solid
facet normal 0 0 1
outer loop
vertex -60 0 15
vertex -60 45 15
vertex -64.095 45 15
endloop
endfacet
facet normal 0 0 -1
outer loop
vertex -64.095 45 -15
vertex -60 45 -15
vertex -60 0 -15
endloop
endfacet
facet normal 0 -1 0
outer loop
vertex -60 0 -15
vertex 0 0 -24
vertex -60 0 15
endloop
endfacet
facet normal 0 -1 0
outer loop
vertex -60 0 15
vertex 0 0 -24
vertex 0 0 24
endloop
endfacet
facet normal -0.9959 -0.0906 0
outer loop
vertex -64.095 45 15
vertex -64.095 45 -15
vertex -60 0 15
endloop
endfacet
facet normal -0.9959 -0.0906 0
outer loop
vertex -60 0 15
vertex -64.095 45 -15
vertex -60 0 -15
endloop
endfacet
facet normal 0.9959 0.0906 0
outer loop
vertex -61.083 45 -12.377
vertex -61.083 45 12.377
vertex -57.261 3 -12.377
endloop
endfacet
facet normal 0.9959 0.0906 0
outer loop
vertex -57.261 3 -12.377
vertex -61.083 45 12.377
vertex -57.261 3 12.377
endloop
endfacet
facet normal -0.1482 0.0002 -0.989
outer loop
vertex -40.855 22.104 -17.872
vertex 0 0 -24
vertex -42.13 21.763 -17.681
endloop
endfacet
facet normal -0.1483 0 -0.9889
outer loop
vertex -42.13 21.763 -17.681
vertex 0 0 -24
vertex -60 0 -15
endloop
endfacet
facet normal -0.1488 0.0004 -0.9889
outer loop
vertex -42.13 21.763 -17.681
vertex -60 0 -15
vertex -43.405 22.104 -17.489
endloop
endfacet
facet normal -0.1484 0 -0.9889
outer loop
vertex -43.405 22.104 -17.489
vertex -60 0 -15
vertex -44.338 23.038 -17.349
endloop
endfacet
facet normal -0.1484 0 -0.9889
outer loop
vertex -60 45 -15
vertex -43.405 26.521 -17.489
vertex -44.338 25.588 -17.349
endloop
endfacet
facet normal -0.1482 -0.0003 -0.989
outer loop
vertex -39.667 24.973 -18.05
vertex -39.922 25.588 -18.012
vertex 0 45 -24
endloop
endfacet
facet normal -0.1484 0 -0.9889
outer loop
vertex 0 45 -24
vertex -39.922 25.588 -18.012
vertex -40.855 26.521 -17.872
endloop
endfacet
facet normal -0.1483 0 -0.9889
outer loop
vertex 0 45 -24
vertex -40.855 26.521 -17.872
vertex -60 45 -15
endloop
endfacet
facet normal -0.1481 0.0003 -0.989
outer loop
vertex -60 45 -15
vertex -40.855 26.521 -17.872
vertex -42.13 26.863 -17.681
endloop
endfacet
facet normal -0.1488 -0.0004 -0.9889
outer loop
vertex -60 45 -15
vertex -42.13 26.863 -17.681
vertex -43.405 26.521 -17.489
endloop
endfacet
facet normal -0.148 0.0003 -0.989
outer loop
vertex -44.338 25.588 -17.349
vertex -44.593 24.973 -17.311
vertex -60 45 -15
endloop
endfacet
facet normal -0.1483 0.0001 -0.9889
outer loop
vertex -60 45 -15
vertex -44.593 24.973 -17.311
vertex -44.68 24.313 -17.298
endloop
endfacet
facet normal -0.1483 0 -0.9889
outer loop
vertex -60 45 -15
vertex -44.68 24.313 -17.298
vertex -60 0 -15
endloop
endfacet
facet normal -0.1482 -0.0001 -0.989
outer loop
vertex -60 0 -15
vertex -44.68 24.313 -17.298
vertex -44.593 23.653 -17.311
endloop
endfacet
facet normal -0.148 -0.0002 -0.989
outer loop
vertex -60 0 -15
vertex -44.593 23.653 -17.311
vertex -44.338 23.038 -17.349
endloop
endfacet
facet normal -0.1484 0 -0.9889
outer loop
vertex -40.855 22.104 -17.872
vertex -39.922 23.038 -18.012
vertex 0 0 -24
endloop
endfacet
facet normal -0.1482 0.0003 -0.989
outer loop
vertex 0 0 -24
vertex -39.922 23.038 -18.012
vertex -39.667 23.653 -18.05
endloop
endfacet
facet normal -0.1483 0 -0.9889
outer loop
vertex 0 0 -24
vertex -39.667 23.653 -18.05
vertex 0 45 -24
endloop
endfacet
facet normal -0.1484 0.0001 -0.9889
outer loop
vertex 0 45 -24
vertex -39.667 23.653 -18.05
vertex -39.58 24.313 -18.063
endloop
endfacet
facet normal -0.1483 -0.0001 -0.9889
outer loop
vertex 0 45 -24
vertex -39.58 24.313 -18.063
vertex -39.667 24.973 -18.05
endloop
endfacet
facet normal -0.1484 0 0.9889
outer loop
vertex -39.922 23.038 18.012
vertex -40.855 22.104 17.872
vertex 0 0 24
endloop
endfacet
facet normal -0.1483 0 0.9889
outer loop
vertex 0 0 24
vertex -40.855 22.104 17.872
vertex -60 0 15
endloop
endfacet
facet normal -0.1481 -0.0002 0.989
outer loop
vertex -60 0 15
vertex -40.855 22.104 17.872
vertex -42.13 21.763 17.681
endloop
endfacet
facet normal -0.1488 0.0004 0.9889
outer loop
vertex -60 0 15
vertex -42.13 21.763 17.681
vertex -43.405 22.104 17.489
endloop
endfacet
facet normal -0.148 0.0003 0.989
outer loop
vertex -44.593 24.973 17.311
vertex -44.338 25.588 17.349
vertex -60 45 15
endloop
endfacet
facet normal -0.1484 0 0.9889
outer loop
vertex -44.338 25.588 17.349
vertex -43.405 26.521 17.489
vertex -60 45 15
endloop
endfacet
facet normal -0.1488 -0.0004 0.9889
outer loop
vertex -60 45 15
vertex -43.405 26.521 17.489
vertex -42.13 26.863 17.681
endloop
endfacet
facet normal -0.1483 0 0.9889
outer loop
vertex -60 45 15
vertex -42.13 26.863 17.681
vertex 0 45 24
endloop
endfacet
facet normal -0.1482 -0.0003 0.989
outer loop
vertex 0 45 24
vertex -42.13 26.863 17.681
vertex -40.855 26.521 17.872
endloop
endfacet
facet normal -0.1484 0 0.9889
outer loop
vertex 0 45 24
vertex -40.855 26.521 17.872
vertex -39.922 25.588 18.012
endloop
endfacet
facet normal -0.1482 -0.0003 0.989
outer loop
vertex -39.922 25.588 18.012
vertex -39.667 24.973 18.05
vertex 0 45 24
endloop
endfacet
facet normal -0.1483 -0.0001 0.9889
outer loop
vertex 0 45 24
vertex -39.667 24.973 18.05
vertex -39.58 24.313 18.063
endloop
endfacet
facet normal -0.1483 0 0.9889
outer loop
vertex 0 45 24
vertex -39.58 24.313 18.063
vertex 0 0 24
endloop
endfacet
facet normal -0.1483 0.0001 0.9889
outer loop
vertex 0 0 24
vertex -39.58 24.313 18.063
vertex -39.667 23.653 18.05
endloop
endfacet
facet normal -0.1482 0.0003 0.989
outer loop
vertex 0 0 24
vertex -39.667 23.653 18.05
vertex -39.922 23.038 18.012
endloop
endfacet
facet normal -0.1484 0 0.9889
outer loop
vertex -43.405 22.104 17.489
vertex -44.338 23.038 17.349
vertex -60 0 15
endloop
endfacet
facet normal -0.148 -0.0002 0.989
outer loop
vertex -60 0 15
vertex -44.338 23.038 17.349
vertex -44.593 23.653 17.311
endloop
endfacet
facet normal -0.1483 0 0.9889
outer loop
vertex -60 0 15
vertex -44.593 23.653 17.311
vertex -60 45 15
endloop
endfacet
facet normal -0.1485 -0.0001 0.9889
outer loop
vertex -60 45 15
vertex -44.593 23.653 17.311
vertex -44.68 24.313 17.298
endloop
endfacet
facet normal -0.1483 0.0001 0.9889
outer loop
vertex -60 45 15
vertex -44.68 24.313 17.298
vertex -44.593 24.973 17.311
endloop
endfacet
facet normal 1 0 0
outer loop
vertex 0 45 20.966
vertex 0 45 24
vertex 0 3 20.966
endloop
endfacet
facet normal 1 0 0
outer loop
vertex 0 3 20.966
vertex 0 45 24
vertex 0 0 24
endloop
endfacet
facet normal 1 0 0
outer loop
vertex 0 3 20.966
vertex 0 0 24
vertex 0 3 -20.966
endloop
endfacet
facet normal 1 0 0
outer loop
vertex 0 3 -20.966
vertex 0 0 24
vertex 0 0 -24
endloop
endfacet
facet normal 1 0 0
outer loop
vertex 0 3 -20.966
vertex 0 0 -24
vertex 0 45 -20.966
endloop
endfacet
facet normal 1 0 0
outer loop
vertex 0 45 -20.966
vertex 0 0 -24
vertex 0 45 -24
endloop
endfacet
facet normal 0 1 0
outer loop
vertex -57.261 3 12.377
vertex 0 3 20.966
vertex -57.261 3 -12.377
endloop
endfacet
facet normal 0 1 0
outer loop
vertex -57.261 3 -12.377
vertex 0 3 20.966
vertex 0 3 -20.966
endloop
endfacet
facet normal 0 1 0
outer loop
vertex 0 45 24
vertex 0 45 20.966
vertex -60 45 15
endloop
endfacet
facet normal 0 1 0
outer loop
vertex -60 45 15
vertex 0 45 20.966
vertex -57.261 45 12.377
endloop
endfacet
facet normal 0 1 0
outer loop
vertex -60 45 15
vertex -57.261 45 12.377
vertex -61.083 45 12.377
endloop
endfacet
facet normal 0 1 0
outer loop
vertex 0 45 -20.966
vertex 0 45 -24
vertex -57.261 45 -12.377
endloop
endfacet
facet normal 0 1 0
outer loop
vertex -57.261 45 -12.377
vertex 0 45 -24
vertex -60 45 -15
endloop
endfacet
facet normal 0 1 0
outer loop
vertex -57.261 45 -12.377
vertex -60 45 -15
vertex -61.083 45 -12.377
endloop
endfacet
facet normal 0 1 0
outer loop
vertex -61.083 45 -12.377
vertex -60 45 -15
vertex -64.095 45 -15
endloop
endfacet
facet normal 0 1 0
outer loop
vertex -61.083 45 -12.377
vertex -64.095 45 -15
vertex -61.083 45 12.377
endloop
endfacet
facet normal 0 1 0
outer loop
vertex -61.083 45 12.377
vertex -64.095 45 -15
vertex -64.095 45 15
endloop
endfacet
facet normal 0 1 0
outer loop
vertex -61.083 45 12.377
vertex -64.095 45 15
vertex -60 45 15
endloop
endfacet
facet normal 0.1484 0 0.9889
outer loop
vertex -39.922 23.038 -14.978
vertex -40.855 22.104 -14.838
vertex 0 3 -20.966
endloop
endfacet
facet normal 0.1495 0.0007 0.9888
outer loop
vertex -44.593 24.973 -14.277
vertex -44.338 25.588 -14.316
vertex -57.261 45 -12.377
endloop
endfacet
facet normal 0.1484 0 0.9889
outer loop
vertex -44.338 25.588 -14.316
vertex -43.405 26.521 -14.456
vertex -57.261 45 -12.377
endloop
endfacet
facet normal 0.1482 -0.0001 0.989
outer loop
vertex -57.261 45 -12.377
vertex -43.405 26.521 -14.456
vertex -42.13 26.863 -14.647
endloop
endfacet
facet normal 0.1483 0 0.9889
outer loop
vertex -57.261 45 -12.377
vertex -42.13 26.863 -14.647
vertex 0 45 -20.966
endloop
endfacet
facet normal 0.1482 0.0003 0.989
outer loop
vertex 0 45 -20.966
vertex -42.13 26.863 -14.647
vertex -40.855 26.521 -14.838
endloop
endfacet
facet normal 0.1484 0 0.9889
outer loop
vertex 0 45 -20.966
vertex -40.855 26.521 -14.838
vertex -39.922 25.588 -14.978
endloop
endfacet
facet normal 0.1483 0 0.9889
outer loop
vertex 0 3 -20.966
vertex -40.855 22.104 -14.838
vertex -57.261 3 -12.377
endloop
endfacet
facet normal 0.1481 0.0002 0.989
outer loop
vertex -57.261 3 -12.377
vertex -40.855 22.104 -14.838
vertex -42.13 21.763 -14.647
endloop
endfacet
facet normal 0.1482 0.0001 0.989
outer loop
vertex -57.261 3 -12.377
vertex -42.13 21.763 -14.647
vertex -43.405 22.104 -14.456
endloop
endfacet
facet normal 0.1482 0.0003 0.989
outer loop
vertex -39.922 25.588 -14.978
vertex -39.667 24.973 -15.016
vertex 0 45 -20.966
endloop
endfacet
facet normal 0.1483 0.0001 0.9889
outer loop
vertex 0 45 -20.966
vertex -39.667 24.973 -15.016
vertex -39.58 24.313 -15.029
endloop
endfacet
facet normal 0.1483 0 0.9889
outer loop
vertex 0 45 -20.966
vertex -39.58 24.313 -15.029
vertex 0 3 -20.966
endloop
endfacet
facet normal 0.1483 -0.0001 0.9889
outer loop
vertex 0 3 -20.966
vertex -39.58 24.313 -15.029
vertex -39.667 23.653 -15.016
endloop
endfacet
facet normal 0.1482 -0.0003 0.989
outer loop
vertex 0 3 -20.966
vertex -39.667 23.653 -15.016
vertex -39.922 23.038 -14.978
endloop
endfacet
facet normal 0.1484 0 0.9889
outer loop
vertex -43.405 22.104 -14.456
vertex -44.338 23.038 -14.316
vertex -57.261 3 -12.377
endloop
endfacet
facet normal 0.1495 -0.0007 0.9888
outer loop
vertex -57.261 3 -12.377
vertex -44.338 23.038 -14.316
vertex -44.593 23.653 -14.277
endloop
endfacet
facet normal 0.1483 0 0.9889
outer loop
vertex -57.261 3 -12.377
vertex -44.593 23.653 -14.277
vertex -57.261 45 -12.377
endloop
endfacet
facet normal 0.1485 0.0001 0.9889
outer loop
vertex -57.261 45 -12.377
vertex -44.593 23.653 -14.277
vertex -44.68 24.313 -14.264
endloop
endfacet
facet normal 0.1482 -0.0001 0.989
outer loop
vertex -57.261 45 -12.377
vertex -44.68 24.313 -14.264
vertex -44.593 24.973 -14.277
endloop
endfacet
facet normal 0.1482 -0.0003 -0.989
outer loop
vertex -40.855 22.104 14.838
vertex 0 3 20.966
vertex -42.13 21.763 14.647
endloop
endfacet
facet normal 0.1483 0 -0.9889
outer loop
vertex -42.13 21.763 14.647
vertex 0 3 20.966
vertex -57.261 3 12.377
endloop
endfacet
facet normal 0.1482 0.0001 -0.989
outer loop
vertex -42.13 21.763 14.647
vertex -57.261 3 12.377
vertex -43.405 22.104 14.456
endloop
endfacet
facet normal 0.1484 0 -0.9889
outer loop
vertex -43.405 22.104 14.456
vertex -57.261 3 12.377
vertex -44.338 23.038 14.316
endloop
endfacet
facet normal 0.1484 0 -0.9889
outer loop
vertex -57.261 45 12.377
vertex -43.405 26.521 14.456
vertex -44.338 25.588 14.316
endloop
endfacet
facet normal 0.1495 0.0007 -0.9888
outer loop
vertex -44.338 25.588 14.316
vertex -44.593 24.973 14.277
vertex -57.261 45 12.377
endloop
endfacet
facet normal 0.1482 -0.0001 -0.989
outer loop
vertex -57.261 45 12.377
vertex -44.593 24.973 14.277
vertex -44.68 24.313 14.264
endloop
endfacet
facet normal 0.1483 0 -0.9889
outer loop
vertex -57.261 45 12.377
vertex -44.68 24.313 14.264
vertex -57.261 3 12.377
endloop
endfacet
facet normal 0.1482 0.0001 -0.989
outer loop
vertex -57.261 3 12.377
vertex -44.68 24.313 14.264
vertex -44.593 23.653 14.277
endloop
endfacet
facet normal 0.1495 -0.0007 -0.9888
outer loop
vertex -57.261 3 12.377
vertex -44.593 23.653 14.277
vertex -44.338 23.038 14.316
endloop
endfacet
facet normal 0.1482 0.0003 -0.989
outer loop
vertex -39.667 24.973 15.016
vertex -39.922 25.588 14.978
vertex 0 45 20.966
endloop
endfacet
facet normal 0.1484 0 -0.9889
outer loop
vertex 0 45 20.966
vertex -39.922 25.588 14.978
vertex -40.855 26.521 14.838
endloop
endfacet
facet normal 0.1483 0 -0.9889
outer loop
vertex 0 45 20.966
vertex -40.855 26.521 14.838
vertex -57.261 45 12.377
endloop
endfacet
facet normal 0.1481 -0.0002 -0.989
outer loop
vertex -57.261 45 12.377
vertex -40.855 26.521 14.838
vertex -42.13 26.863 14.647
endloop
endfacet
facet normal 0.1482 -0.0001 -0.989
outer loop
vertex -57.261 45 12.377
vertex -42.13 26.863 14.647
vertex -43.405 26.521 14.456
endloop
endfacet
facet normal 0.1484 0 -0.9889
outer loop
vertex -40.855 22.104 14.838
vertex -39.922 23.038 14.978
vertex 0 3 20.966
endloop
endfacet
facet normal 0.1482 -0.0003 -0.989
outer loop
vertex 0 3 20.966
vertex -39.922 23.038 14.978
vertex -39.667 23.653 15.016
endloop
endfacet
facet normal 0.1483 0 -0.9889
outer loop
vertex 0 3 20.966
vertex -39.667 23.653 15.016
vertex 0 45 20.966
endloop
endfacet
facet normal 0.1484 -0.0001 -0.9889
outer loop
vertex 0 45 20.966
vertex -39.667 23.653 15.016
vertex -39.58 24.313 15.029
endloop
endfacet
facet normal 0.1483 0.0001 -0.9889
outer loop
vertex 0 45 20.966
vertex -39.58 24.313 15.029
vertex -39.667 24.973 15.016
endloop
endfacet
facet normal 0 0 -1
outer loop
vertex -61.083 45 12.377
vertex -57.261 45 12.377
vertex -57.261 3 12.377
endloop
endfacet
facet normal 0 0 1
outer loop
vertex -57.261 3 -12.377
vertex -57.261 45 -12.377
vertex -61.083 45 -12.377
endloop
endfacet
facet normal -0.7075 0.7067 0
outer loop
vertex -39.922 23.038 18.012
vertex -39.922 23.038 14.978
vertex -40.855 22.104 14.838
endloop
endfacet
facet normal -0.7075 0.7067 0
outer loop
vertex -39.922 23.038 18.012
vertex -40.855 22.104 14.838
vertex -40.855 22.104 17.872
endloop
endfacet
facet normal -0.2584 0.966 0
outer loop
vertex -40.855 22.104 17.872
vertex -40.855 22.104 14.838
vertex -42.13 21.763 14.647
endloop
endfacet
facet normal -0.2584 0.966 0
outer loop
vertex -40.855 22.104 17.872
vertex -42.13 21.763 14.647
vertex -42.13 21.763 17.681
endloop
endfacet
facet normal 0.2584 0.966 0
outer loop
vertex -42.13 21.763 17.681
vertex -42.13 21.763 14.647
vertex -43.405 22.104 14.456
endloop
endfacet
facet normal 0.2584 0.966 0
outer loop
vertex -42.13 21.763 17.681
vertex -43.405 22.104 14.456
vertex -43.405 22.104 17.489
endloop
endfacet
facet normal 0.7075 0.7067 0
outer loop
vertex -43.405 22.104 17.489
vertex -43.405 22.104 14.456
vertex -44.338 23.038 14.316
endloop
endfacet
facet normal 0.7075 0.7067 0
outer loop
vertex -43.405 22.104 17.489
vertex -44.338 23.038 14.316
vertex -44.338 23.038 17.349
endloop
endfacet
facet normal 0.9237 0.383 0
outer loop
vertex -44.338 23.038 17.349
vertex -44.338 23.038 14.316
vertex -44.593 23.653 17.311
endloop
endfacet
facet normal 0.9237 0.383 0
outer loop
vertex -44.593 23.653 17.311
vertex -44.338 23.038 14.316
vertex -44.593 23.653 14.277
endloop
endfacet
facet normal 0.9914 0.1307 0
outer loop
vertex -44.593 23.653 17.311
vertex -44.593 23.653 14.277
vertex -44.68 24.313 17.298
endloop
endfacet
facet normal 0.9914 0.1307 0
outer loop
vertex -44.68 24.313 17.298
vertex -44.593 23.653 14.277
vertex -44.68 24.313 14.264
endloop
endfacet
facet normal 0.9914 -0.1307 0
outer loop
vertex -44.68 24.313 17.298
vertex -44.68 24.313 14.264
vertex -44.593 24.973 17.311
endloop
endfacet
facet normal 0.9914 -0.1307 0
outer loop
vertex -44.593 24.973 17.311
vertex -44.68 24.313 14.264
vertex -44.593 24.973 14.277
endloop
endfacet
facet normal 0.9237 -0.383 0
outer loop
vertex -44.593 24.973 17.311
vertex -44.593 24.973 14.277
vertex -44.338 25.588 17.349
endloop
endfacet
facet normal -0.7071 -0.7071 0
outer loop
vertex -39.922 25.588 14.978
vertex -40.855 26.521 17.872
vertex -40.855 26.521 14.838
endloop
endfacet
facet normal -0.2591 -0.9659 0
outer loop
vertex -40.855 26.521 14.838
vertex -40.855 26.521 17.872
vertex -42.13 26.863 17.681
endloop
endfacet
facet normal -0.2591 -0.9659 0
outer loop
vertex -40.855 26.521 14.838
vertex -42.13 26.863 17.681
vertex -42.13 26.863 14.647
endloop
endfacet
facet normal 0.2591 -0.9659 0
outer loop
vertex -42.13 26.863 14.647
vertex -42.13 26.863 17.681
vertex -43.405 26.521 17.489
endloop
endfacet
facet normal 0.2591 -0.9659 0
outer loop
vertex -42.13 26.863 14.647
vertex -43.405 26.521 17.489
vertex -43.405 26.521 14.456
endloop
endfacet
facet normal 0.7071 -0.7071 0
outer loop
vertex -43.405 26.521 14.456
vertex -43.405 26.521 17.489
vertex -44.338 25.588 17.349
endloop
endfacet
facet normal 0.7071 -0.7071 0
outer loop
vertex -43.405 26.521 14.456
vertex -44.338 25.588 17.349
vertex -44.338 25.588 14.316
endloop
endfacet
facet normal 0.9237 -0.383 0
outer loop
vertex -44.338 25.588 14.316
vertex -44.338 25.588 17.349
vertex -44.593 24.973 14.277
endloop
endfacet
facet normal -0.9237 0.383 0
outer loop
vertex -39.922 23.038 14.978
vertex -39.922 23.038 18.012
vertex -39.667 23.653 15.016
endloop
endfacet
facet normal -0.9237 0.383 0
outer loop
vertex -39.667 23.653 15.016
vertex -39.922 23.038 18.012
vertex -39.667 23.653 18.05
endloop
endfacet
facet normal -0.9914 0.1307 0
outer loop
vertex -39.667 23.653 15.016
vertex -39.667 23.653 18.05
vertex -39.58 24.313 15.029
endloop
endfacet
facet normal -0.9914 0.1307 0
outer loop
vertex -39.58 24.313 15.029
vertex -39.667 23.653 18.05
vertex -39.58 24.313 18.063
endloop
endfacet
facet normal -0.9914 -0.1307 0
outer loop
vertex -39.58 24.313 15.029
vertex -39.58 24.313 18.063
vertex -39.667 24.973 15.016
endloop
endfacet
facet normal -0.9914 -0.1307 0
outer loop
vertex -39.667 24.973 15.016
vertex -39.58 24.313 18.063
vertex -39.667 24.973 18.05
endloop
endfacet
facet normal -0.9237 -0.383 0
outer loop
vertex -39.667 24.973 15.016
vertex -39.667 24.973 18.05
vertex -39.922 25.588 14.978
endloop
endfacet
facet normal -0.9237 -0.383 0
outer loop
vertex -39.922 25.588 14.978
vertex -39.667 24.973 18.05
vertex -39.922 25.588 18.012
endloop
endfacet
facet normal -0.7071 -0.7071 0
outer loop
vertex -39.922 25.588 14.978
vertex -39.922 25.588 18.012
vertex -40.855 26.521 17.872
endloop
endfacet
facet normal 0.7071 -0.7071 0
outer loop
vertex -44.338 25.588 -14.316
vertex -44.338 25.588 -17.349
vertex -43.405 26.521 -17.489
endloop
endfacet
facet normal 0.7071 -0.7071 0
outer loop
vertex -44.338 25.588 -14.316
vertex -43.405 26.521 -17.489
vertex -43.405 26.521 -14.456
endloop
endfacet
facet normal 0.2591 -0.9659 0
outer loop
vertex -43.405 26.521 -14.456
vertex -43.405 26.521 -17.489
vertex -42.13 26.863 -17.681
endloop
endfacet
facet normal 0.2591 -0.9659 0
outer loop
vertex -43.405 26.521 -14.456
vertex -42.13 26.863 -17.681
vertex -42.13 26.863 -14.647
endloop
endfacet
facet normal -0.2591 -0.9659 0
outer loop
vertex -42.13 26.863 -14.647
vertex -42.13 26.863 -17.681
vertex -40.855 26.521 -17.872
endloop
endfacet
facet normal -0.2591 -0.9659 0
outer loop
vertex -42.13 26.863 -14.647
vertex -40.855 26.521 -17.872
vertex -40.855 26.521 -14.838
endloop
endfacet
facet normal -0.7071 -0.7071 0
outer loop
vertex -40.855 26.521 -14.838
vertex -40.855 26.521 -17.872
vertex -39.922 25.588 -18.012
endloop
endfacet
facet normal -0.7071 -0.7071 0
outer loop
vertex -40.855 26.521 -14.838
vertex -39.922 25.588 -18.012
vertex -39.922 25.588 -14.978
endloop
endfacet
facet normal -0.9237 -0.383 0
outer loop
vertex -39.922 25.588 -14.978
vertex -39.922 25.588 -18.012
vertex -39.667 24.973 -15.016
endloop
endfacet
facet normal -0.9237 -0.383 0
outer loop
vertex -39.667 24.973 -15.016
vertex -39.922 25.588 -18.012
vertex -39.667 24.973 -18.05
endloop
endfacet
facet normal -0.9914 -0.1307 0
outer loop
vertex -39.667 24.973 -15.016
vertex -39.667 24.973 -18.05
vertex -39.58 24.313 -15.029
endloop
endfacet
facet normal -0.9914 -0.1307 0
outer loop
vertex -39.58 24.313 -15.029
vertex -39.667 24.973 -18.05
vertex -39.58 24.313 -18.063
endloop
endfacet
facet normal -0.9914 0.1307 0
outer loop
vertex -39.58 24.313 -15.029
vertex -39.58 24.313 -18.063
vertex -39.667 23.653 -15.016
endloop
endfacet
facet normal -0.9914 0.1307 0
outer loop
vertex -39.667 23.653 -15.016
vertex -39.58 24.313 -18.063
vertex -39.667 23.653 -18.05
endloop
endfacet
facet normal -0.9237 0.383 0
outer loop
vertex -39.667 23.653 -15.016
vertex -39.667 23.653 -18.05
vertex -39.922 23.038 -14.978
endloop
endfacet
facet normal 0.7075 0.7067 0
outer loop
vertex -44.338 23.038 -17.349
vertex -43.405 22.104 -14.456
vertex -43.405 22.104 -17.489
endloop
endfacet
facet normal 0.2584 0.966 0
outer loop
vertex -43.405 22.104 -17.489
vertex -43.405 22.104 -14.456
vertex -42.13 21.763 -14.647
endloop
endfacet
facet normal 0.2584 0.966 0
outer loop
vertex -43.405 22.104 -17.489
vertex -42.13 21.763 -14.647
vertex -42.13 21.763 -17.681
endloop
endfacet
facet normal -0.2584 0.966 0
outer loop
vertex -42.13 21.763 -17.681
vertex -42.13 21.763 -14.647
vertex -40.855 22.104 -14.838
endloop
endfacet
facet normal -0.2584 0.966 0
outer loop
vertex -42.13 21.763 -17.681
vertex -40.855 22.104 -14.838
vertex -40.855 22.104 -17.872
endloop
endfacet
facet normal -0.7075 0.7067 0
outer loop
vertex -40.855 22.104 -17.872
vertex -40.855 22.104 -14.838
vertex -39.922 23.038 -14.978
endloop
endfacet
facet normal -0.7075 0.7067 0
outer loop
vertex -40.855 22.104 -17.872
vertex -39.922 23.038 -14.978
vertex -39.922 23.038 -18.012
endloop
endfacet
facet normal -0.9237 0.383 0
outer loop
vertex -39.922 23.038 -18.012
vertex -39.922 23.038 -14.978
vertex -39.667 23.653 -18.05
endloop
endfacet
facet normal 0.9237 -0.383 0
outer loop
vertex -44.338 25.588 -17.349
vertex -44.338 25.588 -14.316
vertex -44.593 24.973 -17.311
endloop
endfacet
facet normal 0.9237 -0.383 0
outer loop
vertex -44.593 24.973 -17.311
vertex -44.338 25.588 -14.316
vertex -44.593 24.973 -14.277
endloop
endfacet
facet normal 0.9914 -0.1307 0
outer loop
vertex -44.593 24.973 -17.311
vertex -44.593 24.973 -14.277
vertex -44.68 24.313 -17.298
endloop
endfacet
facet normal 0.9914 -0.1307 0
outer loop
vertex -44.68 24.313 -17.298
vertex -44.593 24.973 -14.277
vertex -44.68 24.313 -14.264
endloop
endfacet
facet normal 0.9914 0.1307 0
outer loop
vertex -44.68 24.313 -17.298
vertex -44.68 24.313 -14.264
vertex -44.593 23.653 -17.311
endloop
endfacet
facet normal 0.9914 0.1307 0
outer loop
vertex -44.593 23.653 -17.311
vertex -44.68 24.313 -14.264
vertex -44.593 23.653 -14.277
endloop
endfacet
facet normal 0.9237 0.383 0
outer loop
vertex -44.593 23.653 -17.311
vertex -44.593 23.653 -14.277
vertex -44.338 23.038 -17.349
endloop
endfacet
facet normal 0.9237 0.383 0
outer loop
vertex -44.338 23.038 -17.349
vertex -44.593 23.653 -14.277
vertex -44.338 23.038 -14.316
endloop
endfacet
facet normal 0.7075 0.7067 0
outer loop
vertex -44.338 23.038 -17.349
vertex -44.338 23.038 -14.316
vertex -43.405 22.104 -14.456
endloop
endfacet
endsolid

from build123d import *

# Parameters (mm, degrees)
BOSS_EXTRUDE1_DEPTH = 3
BOSS_EXTRUDE2_DEPTH = 15
BOSS_EXTRUDE3_DEPTH = 42
SKETCH6_W           = 2.622655796
SKETCH6_H           = 42
SKETCH6_H_2         = 45
BOSS_EXTRUDE4_DEPTH = 4
CUT_EXTRUDE1_DEPTH  = 88.488342941
SKETCH8_R           = 2.55
CUT_EXTRUDE2_DEPTH  = 50


with BuildPart() as part:
    # Sketch1 → Boss-Extrude1 (new body)
    with BuildSketch(Plane(origin=(0, 0, 0), x_dir=(1, 0, 0), z_dir=(0, 1, 0))):
        Polygon((-60, 0), (0, 0), (0, 24), (-60, 15), align=None)
        Polygon((-60, -15), (0, -24), (0, 0), (-60, 0), align=None)
    extrude(amount=BOSS_EXTRUDE1_DEPTH)

    # Sketch3 → Boss-Extrude2 (add, symmetric)
    with BuildSketch(Plane.XY):
        Polygon((-64.095320817, 45), (-61.082922988, 45), (-56.987602171, 0), (-60, 0), align=None)
    extrude(amount=BOSS_EXTRUDE2_DEPTH, both=True)

    # Sketch4 → Boss-Extrude3 (add)
    with BuildSketch(Plane(origin=(0, 3, 0), x_dir=(1, 0, 0), z_dir=(0, 1, 0))):
        Polygon((-57.260623559, 12.377344204), (0, 20.966437738), (0, 24), (-60, 15), (-57.260623559, 15), align=None)
        Polygon((0, -24), (0, -20.966437738), (-57.260623559, -12.377344204), (-57.260623559, -15), (-60, -15), align=None)
    extrude(amount=BOSS_EXTRUDE3_DEPTH)

    # Sketch6 → Boss-Extrude4 (add)
    with BuildSketch(Plane.ZY.offset(57.260623559)):
        with Locations((-13.688672102, 24)):
            Rectangle(SKETCH6_W, SKETCH6_H)
        with Locations((13.688672102, 22.5)):
            Rectangle(SKETCH6_W, SKETCH6_H_2)
    extrude(amount=BOSS_EXTRUDE4_DEPTH)

    # Sketch7 → Cut-Extrude1 (cut, through all)
    with BuildSketch(Plane.XY.offset(15)):
        Polygon((-61.260623559, 13.851920935), (-60, 0), (-61.260623559, 0), align=None)
    extrude(amount=-CUT_EXTRUDE1_DEPTH, mode=Mode.SUBTRACT)

    # Sketch8 → Cut-Extrude2 (cut, symmetric)
    with BuildSketch(Plane.XY.offset(15)):
        with Locations((-42.129972436, 24.312651604)):
            Circle(SKETCH8_R)
    extrude(amount=CUT_EXTRUDE2_DEPTH, both=True, mode=Mode.SUBTRACT)


solid = part.part
